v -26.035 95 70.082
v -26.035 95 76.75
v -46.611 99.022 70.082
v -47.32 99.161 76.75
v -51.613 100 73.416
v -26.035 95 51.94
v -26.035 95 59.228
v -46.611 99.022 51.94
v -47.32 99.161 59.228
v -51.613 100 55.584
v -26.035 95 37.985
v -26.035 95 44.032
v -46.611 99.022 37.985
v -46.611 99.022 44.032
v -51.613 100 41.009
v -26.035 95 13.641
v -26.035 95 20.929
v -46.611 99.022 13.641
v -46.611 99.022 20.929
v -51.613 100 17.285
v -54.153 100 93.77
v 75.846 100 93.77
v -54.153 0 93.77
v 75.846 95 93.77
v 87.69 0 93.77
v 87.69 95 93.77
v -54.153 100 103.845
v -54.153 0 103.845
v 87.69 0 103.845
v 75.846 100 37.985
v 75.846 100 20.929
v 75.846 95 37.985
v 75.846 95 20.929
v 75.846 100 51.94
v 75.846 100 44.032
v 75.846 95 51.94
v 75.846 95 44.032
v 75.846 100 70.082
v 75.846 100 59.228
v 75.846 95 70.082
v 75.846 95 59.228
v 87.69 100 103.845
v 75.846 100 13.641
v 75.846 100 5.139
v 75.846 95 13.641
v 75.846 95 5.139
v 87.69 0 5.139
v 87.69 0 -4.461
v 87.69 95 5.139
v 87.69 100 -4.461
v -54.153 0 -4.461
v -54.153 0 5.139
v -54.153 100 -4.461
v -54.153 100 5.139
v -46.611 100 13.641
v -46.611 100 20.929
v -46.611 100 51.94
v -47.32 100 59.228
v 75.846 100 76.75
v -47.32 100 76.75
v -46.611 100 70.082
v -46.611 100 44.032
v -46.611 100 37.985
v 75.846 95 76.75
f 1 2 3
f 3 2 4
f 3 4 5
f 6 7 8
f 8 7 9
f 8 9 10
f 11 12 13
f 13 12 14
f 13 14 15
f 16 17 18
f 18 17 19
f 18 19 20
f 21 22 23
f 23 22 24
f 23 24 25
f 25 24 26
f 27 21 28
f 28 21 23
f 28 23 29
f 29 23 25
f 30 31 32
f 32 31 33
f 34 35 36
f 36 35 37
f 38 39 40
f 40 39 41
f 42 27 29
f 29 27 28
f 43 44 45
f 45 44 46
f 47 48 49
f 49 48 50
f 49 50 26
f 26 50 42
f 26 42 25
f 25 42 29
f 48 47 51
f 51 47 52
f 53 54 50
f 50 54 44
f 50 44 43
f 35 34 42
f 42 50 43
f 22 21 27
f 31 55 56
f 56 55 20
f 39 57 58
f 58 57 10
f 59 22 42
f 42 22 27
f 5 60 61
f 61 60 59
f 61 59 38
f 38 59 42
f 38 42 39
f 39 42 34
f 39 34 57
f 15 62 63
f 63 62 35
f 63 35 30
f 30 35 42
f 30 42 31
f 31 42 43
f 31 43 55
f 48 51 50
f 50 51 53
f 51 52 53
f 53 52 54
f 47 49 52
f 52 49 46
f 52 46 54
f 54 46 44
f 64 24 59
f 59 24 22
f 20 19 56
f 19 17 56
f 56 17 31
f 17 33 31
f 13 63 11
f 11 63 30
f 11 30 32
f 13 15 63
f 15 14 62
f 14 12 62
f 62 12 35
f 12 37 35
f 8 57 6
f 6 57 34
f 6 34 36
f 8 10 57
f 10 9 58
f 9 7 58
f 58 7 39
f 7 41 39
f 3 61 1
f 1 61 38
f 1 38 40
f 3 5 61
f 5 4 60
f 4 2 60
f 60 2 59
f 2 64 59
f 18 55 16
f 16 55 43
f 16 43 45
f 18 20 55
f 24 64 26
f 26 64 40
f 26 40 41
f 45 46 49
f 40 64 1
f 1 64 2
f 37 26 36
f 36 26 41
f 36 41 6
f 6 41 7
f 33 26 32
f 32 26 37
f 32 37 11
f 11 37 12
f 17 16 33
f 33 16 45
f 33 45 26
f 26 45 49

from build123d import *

# Parameters (mm, degrees)
SKETCH1_W               = 141.842971217
SKETCH1_H               = 108.306454767
BOSS_EXTRUDE1_DEPTH     = 5
BOSS_EXTRUDE2_DEPTH     = 95
SKETCH3_W               = 111.927402264
SKETCH3_H               = 61.729715964
CUT_EXTRUDE1_DEPTH      = 95
SKETCH4_W               = 61.729715964
SKETCH4_H               = 100
CUT_EXTRUDE2_DEPTH      = 95
SKETCH5_W               = 141.842971217
SKETCH5_H               = 26.901252983
CUT_EXTRUDE3_DEPTH      = 135
BOSS_EXTRUDE3_DEPTH     = 5
CUT_EXTRUDE4_DEPTH      = 65
CUT_EXTRUDE4_DEPTH_BACK = 15


with BuildPart() as part:
    # Sketch1 → Boss-Extrude1 (new body)
    with BuildSketch(Plane(origin=(0, 0, 22.06567104), x_dir=(1, 0, 0), z_dir=(0, 1, 0))):
        with Locations((16.768258226, -27.626392649)):
            Rectangle(SKETCH1_W, SKETCH1_H)
    extrude(amount=BOSS_EXTRUDE1_DEPTH)

    # Sketch2 → Boss-Extrude2 (add)
    with BuildSketch(Plane(origin=(0, 5, 22.06567104), x_dir=(1, 0, 0), z_dir=(0, 1, 0))):
        Polygon((-54.153227383, -81.779620033), (87.689743834, -81.779620033), (87.689743834, -44.802673151), (87.689743834, 26.526834734), (57.774174881, 26.526834734), (-54.153227383, 26.526834734), (-54.153227383, 16.927042813), (57.774174881, 16.927042813), (57.774174881, -44.802673151), (-54.153227383, -44.802673151), align=None)
    extrude(amount=BOSS_EXTRUDE2_DEPTH)

    # Sketch3 → Cut-Extrude1 (cut)
    with BuildSketch(Plane(origin=(0, 5, 22.06567104), x_dir=(1, 0, 0), z_dir=(0, 1, 0))):
        with Locations((1.810473749, -13.937815169)):
            Rectangle(SKETCH3_W, SKETCH3_H)
    extrude(amount=-CUT_EXTRUDE1_DEPTH, mode=Mode.SUBTRACT)

    # Sketch4 → Cut-Extrude2 (cut)
    with BuildSketch(Plane(origin=(57.774174881, 0, 22.06567104), x_dir=(0, 0, 1), z_dir=(-1, 0, 0))):
        with Locations((13.937815169, 50)):
            Rectangle(SKETCH4_W, SKETCH4_H)
    extrude(amount=-CUT_EXTRUDE2_DEPTH, mode=Mode.SUBTRACT)


with BuildPart() as cut_extrude2_piece_1:
    # of the separate pieces the step leaves, piece 1, a body of its own (cut_extrude2_pieces)
    add(part.part.solids().sort_by_distance((-54.153227383, 100, 66.868344191))[0])

    # Sketch5 → Cut-Extrude3 (cut)
    with BuildSketch(Plane(origin=(0, 100, 0), x_dir=(1, 0, 0), z_dir=(0, 1, 0))):
        with Locations((16.768258226, -80.318970683)):
            Rectangle(SKETCH5_W, SKETCH5_H)
    extrude(amount=-CUT_EXTRUDE3_DEPTH, mode=Mode.SUBTRACT)



with BuildPart() as cut_extrude2_piece_2:
    # of the separate pieces the step leaves, piece 2, a body of its own (cut_extrude2_pieces)
    add(part.part.solids().sort_by_distance((-54.153227383, 0, -4.461163693))[0])


with BuildPart() as cut_extrude2_piece_1_1:
    add(cut_extrude2_piece_1.part)

    add(cut_extrude2_piece_2.part)  # Boss-Extrude3 merges Cut-Extrude2 piece 2
    # Sketch6 → Boss-Extrude3 (add)
    with BuildSketch(Plane(origin=(0, 100, 0), x_dir=(1, 0, 0), z_dir=(0, 1, 0))):
        Polygon((87.689743834, -103.845291074), (87.689743834, 4.461163693), (75.84574379, 4.461163693), (75.84574379, -13.640842184), (-46.610502058, -13.640842184), (-51.612768373, -17.284729089), (-46.610502058, -20.928615994), (75.84574379, -20.928615994), (75.84574379, -37.985107889), (-46.610502058, -37.985107889), (-51.612768373, -41.008758725), (-46.610502058, -44.032409561), (75.84574379, -44.032409561), (75.84574379, -51.94041944), (-46.610502058, -51.94041944), (-51.612768373, -55.584306345), (-47.3197879, -59.22819325), (75.84574379, -59.22819325), (75.84574379, -70.082324456), (-46.610502058, -70.082324456), (-51.612768373, -73.416093326), (-47.3197879, -76.749862197), (75.84574379, -76.749862197), (75.84574379, -103.845291074), align=None)
    extrude(amount=-BOSS_EXTRUDE3_DEPTH)

    # Sketch7 → Cut-Extrude4 (cut, two sides: drawn at the far end of the back side and taken through both)
    with BuildSketch(Plane.XY.offset(20.928615994).offset(-CUT_EXTRUDE4_DEPTH_BACK)):
        Polygon((-51.612768373, 100), (-26.03457971, 95), (-51.612768373, 95), align=None)
    extrude(amount=CUT_EXTRUDE4_DEPTH + CUT_EXTRUDE4_DEPTH_BACK, mode=Mode.SUBTRACT)


solid = cut_extrude2_piece_1_1.part
